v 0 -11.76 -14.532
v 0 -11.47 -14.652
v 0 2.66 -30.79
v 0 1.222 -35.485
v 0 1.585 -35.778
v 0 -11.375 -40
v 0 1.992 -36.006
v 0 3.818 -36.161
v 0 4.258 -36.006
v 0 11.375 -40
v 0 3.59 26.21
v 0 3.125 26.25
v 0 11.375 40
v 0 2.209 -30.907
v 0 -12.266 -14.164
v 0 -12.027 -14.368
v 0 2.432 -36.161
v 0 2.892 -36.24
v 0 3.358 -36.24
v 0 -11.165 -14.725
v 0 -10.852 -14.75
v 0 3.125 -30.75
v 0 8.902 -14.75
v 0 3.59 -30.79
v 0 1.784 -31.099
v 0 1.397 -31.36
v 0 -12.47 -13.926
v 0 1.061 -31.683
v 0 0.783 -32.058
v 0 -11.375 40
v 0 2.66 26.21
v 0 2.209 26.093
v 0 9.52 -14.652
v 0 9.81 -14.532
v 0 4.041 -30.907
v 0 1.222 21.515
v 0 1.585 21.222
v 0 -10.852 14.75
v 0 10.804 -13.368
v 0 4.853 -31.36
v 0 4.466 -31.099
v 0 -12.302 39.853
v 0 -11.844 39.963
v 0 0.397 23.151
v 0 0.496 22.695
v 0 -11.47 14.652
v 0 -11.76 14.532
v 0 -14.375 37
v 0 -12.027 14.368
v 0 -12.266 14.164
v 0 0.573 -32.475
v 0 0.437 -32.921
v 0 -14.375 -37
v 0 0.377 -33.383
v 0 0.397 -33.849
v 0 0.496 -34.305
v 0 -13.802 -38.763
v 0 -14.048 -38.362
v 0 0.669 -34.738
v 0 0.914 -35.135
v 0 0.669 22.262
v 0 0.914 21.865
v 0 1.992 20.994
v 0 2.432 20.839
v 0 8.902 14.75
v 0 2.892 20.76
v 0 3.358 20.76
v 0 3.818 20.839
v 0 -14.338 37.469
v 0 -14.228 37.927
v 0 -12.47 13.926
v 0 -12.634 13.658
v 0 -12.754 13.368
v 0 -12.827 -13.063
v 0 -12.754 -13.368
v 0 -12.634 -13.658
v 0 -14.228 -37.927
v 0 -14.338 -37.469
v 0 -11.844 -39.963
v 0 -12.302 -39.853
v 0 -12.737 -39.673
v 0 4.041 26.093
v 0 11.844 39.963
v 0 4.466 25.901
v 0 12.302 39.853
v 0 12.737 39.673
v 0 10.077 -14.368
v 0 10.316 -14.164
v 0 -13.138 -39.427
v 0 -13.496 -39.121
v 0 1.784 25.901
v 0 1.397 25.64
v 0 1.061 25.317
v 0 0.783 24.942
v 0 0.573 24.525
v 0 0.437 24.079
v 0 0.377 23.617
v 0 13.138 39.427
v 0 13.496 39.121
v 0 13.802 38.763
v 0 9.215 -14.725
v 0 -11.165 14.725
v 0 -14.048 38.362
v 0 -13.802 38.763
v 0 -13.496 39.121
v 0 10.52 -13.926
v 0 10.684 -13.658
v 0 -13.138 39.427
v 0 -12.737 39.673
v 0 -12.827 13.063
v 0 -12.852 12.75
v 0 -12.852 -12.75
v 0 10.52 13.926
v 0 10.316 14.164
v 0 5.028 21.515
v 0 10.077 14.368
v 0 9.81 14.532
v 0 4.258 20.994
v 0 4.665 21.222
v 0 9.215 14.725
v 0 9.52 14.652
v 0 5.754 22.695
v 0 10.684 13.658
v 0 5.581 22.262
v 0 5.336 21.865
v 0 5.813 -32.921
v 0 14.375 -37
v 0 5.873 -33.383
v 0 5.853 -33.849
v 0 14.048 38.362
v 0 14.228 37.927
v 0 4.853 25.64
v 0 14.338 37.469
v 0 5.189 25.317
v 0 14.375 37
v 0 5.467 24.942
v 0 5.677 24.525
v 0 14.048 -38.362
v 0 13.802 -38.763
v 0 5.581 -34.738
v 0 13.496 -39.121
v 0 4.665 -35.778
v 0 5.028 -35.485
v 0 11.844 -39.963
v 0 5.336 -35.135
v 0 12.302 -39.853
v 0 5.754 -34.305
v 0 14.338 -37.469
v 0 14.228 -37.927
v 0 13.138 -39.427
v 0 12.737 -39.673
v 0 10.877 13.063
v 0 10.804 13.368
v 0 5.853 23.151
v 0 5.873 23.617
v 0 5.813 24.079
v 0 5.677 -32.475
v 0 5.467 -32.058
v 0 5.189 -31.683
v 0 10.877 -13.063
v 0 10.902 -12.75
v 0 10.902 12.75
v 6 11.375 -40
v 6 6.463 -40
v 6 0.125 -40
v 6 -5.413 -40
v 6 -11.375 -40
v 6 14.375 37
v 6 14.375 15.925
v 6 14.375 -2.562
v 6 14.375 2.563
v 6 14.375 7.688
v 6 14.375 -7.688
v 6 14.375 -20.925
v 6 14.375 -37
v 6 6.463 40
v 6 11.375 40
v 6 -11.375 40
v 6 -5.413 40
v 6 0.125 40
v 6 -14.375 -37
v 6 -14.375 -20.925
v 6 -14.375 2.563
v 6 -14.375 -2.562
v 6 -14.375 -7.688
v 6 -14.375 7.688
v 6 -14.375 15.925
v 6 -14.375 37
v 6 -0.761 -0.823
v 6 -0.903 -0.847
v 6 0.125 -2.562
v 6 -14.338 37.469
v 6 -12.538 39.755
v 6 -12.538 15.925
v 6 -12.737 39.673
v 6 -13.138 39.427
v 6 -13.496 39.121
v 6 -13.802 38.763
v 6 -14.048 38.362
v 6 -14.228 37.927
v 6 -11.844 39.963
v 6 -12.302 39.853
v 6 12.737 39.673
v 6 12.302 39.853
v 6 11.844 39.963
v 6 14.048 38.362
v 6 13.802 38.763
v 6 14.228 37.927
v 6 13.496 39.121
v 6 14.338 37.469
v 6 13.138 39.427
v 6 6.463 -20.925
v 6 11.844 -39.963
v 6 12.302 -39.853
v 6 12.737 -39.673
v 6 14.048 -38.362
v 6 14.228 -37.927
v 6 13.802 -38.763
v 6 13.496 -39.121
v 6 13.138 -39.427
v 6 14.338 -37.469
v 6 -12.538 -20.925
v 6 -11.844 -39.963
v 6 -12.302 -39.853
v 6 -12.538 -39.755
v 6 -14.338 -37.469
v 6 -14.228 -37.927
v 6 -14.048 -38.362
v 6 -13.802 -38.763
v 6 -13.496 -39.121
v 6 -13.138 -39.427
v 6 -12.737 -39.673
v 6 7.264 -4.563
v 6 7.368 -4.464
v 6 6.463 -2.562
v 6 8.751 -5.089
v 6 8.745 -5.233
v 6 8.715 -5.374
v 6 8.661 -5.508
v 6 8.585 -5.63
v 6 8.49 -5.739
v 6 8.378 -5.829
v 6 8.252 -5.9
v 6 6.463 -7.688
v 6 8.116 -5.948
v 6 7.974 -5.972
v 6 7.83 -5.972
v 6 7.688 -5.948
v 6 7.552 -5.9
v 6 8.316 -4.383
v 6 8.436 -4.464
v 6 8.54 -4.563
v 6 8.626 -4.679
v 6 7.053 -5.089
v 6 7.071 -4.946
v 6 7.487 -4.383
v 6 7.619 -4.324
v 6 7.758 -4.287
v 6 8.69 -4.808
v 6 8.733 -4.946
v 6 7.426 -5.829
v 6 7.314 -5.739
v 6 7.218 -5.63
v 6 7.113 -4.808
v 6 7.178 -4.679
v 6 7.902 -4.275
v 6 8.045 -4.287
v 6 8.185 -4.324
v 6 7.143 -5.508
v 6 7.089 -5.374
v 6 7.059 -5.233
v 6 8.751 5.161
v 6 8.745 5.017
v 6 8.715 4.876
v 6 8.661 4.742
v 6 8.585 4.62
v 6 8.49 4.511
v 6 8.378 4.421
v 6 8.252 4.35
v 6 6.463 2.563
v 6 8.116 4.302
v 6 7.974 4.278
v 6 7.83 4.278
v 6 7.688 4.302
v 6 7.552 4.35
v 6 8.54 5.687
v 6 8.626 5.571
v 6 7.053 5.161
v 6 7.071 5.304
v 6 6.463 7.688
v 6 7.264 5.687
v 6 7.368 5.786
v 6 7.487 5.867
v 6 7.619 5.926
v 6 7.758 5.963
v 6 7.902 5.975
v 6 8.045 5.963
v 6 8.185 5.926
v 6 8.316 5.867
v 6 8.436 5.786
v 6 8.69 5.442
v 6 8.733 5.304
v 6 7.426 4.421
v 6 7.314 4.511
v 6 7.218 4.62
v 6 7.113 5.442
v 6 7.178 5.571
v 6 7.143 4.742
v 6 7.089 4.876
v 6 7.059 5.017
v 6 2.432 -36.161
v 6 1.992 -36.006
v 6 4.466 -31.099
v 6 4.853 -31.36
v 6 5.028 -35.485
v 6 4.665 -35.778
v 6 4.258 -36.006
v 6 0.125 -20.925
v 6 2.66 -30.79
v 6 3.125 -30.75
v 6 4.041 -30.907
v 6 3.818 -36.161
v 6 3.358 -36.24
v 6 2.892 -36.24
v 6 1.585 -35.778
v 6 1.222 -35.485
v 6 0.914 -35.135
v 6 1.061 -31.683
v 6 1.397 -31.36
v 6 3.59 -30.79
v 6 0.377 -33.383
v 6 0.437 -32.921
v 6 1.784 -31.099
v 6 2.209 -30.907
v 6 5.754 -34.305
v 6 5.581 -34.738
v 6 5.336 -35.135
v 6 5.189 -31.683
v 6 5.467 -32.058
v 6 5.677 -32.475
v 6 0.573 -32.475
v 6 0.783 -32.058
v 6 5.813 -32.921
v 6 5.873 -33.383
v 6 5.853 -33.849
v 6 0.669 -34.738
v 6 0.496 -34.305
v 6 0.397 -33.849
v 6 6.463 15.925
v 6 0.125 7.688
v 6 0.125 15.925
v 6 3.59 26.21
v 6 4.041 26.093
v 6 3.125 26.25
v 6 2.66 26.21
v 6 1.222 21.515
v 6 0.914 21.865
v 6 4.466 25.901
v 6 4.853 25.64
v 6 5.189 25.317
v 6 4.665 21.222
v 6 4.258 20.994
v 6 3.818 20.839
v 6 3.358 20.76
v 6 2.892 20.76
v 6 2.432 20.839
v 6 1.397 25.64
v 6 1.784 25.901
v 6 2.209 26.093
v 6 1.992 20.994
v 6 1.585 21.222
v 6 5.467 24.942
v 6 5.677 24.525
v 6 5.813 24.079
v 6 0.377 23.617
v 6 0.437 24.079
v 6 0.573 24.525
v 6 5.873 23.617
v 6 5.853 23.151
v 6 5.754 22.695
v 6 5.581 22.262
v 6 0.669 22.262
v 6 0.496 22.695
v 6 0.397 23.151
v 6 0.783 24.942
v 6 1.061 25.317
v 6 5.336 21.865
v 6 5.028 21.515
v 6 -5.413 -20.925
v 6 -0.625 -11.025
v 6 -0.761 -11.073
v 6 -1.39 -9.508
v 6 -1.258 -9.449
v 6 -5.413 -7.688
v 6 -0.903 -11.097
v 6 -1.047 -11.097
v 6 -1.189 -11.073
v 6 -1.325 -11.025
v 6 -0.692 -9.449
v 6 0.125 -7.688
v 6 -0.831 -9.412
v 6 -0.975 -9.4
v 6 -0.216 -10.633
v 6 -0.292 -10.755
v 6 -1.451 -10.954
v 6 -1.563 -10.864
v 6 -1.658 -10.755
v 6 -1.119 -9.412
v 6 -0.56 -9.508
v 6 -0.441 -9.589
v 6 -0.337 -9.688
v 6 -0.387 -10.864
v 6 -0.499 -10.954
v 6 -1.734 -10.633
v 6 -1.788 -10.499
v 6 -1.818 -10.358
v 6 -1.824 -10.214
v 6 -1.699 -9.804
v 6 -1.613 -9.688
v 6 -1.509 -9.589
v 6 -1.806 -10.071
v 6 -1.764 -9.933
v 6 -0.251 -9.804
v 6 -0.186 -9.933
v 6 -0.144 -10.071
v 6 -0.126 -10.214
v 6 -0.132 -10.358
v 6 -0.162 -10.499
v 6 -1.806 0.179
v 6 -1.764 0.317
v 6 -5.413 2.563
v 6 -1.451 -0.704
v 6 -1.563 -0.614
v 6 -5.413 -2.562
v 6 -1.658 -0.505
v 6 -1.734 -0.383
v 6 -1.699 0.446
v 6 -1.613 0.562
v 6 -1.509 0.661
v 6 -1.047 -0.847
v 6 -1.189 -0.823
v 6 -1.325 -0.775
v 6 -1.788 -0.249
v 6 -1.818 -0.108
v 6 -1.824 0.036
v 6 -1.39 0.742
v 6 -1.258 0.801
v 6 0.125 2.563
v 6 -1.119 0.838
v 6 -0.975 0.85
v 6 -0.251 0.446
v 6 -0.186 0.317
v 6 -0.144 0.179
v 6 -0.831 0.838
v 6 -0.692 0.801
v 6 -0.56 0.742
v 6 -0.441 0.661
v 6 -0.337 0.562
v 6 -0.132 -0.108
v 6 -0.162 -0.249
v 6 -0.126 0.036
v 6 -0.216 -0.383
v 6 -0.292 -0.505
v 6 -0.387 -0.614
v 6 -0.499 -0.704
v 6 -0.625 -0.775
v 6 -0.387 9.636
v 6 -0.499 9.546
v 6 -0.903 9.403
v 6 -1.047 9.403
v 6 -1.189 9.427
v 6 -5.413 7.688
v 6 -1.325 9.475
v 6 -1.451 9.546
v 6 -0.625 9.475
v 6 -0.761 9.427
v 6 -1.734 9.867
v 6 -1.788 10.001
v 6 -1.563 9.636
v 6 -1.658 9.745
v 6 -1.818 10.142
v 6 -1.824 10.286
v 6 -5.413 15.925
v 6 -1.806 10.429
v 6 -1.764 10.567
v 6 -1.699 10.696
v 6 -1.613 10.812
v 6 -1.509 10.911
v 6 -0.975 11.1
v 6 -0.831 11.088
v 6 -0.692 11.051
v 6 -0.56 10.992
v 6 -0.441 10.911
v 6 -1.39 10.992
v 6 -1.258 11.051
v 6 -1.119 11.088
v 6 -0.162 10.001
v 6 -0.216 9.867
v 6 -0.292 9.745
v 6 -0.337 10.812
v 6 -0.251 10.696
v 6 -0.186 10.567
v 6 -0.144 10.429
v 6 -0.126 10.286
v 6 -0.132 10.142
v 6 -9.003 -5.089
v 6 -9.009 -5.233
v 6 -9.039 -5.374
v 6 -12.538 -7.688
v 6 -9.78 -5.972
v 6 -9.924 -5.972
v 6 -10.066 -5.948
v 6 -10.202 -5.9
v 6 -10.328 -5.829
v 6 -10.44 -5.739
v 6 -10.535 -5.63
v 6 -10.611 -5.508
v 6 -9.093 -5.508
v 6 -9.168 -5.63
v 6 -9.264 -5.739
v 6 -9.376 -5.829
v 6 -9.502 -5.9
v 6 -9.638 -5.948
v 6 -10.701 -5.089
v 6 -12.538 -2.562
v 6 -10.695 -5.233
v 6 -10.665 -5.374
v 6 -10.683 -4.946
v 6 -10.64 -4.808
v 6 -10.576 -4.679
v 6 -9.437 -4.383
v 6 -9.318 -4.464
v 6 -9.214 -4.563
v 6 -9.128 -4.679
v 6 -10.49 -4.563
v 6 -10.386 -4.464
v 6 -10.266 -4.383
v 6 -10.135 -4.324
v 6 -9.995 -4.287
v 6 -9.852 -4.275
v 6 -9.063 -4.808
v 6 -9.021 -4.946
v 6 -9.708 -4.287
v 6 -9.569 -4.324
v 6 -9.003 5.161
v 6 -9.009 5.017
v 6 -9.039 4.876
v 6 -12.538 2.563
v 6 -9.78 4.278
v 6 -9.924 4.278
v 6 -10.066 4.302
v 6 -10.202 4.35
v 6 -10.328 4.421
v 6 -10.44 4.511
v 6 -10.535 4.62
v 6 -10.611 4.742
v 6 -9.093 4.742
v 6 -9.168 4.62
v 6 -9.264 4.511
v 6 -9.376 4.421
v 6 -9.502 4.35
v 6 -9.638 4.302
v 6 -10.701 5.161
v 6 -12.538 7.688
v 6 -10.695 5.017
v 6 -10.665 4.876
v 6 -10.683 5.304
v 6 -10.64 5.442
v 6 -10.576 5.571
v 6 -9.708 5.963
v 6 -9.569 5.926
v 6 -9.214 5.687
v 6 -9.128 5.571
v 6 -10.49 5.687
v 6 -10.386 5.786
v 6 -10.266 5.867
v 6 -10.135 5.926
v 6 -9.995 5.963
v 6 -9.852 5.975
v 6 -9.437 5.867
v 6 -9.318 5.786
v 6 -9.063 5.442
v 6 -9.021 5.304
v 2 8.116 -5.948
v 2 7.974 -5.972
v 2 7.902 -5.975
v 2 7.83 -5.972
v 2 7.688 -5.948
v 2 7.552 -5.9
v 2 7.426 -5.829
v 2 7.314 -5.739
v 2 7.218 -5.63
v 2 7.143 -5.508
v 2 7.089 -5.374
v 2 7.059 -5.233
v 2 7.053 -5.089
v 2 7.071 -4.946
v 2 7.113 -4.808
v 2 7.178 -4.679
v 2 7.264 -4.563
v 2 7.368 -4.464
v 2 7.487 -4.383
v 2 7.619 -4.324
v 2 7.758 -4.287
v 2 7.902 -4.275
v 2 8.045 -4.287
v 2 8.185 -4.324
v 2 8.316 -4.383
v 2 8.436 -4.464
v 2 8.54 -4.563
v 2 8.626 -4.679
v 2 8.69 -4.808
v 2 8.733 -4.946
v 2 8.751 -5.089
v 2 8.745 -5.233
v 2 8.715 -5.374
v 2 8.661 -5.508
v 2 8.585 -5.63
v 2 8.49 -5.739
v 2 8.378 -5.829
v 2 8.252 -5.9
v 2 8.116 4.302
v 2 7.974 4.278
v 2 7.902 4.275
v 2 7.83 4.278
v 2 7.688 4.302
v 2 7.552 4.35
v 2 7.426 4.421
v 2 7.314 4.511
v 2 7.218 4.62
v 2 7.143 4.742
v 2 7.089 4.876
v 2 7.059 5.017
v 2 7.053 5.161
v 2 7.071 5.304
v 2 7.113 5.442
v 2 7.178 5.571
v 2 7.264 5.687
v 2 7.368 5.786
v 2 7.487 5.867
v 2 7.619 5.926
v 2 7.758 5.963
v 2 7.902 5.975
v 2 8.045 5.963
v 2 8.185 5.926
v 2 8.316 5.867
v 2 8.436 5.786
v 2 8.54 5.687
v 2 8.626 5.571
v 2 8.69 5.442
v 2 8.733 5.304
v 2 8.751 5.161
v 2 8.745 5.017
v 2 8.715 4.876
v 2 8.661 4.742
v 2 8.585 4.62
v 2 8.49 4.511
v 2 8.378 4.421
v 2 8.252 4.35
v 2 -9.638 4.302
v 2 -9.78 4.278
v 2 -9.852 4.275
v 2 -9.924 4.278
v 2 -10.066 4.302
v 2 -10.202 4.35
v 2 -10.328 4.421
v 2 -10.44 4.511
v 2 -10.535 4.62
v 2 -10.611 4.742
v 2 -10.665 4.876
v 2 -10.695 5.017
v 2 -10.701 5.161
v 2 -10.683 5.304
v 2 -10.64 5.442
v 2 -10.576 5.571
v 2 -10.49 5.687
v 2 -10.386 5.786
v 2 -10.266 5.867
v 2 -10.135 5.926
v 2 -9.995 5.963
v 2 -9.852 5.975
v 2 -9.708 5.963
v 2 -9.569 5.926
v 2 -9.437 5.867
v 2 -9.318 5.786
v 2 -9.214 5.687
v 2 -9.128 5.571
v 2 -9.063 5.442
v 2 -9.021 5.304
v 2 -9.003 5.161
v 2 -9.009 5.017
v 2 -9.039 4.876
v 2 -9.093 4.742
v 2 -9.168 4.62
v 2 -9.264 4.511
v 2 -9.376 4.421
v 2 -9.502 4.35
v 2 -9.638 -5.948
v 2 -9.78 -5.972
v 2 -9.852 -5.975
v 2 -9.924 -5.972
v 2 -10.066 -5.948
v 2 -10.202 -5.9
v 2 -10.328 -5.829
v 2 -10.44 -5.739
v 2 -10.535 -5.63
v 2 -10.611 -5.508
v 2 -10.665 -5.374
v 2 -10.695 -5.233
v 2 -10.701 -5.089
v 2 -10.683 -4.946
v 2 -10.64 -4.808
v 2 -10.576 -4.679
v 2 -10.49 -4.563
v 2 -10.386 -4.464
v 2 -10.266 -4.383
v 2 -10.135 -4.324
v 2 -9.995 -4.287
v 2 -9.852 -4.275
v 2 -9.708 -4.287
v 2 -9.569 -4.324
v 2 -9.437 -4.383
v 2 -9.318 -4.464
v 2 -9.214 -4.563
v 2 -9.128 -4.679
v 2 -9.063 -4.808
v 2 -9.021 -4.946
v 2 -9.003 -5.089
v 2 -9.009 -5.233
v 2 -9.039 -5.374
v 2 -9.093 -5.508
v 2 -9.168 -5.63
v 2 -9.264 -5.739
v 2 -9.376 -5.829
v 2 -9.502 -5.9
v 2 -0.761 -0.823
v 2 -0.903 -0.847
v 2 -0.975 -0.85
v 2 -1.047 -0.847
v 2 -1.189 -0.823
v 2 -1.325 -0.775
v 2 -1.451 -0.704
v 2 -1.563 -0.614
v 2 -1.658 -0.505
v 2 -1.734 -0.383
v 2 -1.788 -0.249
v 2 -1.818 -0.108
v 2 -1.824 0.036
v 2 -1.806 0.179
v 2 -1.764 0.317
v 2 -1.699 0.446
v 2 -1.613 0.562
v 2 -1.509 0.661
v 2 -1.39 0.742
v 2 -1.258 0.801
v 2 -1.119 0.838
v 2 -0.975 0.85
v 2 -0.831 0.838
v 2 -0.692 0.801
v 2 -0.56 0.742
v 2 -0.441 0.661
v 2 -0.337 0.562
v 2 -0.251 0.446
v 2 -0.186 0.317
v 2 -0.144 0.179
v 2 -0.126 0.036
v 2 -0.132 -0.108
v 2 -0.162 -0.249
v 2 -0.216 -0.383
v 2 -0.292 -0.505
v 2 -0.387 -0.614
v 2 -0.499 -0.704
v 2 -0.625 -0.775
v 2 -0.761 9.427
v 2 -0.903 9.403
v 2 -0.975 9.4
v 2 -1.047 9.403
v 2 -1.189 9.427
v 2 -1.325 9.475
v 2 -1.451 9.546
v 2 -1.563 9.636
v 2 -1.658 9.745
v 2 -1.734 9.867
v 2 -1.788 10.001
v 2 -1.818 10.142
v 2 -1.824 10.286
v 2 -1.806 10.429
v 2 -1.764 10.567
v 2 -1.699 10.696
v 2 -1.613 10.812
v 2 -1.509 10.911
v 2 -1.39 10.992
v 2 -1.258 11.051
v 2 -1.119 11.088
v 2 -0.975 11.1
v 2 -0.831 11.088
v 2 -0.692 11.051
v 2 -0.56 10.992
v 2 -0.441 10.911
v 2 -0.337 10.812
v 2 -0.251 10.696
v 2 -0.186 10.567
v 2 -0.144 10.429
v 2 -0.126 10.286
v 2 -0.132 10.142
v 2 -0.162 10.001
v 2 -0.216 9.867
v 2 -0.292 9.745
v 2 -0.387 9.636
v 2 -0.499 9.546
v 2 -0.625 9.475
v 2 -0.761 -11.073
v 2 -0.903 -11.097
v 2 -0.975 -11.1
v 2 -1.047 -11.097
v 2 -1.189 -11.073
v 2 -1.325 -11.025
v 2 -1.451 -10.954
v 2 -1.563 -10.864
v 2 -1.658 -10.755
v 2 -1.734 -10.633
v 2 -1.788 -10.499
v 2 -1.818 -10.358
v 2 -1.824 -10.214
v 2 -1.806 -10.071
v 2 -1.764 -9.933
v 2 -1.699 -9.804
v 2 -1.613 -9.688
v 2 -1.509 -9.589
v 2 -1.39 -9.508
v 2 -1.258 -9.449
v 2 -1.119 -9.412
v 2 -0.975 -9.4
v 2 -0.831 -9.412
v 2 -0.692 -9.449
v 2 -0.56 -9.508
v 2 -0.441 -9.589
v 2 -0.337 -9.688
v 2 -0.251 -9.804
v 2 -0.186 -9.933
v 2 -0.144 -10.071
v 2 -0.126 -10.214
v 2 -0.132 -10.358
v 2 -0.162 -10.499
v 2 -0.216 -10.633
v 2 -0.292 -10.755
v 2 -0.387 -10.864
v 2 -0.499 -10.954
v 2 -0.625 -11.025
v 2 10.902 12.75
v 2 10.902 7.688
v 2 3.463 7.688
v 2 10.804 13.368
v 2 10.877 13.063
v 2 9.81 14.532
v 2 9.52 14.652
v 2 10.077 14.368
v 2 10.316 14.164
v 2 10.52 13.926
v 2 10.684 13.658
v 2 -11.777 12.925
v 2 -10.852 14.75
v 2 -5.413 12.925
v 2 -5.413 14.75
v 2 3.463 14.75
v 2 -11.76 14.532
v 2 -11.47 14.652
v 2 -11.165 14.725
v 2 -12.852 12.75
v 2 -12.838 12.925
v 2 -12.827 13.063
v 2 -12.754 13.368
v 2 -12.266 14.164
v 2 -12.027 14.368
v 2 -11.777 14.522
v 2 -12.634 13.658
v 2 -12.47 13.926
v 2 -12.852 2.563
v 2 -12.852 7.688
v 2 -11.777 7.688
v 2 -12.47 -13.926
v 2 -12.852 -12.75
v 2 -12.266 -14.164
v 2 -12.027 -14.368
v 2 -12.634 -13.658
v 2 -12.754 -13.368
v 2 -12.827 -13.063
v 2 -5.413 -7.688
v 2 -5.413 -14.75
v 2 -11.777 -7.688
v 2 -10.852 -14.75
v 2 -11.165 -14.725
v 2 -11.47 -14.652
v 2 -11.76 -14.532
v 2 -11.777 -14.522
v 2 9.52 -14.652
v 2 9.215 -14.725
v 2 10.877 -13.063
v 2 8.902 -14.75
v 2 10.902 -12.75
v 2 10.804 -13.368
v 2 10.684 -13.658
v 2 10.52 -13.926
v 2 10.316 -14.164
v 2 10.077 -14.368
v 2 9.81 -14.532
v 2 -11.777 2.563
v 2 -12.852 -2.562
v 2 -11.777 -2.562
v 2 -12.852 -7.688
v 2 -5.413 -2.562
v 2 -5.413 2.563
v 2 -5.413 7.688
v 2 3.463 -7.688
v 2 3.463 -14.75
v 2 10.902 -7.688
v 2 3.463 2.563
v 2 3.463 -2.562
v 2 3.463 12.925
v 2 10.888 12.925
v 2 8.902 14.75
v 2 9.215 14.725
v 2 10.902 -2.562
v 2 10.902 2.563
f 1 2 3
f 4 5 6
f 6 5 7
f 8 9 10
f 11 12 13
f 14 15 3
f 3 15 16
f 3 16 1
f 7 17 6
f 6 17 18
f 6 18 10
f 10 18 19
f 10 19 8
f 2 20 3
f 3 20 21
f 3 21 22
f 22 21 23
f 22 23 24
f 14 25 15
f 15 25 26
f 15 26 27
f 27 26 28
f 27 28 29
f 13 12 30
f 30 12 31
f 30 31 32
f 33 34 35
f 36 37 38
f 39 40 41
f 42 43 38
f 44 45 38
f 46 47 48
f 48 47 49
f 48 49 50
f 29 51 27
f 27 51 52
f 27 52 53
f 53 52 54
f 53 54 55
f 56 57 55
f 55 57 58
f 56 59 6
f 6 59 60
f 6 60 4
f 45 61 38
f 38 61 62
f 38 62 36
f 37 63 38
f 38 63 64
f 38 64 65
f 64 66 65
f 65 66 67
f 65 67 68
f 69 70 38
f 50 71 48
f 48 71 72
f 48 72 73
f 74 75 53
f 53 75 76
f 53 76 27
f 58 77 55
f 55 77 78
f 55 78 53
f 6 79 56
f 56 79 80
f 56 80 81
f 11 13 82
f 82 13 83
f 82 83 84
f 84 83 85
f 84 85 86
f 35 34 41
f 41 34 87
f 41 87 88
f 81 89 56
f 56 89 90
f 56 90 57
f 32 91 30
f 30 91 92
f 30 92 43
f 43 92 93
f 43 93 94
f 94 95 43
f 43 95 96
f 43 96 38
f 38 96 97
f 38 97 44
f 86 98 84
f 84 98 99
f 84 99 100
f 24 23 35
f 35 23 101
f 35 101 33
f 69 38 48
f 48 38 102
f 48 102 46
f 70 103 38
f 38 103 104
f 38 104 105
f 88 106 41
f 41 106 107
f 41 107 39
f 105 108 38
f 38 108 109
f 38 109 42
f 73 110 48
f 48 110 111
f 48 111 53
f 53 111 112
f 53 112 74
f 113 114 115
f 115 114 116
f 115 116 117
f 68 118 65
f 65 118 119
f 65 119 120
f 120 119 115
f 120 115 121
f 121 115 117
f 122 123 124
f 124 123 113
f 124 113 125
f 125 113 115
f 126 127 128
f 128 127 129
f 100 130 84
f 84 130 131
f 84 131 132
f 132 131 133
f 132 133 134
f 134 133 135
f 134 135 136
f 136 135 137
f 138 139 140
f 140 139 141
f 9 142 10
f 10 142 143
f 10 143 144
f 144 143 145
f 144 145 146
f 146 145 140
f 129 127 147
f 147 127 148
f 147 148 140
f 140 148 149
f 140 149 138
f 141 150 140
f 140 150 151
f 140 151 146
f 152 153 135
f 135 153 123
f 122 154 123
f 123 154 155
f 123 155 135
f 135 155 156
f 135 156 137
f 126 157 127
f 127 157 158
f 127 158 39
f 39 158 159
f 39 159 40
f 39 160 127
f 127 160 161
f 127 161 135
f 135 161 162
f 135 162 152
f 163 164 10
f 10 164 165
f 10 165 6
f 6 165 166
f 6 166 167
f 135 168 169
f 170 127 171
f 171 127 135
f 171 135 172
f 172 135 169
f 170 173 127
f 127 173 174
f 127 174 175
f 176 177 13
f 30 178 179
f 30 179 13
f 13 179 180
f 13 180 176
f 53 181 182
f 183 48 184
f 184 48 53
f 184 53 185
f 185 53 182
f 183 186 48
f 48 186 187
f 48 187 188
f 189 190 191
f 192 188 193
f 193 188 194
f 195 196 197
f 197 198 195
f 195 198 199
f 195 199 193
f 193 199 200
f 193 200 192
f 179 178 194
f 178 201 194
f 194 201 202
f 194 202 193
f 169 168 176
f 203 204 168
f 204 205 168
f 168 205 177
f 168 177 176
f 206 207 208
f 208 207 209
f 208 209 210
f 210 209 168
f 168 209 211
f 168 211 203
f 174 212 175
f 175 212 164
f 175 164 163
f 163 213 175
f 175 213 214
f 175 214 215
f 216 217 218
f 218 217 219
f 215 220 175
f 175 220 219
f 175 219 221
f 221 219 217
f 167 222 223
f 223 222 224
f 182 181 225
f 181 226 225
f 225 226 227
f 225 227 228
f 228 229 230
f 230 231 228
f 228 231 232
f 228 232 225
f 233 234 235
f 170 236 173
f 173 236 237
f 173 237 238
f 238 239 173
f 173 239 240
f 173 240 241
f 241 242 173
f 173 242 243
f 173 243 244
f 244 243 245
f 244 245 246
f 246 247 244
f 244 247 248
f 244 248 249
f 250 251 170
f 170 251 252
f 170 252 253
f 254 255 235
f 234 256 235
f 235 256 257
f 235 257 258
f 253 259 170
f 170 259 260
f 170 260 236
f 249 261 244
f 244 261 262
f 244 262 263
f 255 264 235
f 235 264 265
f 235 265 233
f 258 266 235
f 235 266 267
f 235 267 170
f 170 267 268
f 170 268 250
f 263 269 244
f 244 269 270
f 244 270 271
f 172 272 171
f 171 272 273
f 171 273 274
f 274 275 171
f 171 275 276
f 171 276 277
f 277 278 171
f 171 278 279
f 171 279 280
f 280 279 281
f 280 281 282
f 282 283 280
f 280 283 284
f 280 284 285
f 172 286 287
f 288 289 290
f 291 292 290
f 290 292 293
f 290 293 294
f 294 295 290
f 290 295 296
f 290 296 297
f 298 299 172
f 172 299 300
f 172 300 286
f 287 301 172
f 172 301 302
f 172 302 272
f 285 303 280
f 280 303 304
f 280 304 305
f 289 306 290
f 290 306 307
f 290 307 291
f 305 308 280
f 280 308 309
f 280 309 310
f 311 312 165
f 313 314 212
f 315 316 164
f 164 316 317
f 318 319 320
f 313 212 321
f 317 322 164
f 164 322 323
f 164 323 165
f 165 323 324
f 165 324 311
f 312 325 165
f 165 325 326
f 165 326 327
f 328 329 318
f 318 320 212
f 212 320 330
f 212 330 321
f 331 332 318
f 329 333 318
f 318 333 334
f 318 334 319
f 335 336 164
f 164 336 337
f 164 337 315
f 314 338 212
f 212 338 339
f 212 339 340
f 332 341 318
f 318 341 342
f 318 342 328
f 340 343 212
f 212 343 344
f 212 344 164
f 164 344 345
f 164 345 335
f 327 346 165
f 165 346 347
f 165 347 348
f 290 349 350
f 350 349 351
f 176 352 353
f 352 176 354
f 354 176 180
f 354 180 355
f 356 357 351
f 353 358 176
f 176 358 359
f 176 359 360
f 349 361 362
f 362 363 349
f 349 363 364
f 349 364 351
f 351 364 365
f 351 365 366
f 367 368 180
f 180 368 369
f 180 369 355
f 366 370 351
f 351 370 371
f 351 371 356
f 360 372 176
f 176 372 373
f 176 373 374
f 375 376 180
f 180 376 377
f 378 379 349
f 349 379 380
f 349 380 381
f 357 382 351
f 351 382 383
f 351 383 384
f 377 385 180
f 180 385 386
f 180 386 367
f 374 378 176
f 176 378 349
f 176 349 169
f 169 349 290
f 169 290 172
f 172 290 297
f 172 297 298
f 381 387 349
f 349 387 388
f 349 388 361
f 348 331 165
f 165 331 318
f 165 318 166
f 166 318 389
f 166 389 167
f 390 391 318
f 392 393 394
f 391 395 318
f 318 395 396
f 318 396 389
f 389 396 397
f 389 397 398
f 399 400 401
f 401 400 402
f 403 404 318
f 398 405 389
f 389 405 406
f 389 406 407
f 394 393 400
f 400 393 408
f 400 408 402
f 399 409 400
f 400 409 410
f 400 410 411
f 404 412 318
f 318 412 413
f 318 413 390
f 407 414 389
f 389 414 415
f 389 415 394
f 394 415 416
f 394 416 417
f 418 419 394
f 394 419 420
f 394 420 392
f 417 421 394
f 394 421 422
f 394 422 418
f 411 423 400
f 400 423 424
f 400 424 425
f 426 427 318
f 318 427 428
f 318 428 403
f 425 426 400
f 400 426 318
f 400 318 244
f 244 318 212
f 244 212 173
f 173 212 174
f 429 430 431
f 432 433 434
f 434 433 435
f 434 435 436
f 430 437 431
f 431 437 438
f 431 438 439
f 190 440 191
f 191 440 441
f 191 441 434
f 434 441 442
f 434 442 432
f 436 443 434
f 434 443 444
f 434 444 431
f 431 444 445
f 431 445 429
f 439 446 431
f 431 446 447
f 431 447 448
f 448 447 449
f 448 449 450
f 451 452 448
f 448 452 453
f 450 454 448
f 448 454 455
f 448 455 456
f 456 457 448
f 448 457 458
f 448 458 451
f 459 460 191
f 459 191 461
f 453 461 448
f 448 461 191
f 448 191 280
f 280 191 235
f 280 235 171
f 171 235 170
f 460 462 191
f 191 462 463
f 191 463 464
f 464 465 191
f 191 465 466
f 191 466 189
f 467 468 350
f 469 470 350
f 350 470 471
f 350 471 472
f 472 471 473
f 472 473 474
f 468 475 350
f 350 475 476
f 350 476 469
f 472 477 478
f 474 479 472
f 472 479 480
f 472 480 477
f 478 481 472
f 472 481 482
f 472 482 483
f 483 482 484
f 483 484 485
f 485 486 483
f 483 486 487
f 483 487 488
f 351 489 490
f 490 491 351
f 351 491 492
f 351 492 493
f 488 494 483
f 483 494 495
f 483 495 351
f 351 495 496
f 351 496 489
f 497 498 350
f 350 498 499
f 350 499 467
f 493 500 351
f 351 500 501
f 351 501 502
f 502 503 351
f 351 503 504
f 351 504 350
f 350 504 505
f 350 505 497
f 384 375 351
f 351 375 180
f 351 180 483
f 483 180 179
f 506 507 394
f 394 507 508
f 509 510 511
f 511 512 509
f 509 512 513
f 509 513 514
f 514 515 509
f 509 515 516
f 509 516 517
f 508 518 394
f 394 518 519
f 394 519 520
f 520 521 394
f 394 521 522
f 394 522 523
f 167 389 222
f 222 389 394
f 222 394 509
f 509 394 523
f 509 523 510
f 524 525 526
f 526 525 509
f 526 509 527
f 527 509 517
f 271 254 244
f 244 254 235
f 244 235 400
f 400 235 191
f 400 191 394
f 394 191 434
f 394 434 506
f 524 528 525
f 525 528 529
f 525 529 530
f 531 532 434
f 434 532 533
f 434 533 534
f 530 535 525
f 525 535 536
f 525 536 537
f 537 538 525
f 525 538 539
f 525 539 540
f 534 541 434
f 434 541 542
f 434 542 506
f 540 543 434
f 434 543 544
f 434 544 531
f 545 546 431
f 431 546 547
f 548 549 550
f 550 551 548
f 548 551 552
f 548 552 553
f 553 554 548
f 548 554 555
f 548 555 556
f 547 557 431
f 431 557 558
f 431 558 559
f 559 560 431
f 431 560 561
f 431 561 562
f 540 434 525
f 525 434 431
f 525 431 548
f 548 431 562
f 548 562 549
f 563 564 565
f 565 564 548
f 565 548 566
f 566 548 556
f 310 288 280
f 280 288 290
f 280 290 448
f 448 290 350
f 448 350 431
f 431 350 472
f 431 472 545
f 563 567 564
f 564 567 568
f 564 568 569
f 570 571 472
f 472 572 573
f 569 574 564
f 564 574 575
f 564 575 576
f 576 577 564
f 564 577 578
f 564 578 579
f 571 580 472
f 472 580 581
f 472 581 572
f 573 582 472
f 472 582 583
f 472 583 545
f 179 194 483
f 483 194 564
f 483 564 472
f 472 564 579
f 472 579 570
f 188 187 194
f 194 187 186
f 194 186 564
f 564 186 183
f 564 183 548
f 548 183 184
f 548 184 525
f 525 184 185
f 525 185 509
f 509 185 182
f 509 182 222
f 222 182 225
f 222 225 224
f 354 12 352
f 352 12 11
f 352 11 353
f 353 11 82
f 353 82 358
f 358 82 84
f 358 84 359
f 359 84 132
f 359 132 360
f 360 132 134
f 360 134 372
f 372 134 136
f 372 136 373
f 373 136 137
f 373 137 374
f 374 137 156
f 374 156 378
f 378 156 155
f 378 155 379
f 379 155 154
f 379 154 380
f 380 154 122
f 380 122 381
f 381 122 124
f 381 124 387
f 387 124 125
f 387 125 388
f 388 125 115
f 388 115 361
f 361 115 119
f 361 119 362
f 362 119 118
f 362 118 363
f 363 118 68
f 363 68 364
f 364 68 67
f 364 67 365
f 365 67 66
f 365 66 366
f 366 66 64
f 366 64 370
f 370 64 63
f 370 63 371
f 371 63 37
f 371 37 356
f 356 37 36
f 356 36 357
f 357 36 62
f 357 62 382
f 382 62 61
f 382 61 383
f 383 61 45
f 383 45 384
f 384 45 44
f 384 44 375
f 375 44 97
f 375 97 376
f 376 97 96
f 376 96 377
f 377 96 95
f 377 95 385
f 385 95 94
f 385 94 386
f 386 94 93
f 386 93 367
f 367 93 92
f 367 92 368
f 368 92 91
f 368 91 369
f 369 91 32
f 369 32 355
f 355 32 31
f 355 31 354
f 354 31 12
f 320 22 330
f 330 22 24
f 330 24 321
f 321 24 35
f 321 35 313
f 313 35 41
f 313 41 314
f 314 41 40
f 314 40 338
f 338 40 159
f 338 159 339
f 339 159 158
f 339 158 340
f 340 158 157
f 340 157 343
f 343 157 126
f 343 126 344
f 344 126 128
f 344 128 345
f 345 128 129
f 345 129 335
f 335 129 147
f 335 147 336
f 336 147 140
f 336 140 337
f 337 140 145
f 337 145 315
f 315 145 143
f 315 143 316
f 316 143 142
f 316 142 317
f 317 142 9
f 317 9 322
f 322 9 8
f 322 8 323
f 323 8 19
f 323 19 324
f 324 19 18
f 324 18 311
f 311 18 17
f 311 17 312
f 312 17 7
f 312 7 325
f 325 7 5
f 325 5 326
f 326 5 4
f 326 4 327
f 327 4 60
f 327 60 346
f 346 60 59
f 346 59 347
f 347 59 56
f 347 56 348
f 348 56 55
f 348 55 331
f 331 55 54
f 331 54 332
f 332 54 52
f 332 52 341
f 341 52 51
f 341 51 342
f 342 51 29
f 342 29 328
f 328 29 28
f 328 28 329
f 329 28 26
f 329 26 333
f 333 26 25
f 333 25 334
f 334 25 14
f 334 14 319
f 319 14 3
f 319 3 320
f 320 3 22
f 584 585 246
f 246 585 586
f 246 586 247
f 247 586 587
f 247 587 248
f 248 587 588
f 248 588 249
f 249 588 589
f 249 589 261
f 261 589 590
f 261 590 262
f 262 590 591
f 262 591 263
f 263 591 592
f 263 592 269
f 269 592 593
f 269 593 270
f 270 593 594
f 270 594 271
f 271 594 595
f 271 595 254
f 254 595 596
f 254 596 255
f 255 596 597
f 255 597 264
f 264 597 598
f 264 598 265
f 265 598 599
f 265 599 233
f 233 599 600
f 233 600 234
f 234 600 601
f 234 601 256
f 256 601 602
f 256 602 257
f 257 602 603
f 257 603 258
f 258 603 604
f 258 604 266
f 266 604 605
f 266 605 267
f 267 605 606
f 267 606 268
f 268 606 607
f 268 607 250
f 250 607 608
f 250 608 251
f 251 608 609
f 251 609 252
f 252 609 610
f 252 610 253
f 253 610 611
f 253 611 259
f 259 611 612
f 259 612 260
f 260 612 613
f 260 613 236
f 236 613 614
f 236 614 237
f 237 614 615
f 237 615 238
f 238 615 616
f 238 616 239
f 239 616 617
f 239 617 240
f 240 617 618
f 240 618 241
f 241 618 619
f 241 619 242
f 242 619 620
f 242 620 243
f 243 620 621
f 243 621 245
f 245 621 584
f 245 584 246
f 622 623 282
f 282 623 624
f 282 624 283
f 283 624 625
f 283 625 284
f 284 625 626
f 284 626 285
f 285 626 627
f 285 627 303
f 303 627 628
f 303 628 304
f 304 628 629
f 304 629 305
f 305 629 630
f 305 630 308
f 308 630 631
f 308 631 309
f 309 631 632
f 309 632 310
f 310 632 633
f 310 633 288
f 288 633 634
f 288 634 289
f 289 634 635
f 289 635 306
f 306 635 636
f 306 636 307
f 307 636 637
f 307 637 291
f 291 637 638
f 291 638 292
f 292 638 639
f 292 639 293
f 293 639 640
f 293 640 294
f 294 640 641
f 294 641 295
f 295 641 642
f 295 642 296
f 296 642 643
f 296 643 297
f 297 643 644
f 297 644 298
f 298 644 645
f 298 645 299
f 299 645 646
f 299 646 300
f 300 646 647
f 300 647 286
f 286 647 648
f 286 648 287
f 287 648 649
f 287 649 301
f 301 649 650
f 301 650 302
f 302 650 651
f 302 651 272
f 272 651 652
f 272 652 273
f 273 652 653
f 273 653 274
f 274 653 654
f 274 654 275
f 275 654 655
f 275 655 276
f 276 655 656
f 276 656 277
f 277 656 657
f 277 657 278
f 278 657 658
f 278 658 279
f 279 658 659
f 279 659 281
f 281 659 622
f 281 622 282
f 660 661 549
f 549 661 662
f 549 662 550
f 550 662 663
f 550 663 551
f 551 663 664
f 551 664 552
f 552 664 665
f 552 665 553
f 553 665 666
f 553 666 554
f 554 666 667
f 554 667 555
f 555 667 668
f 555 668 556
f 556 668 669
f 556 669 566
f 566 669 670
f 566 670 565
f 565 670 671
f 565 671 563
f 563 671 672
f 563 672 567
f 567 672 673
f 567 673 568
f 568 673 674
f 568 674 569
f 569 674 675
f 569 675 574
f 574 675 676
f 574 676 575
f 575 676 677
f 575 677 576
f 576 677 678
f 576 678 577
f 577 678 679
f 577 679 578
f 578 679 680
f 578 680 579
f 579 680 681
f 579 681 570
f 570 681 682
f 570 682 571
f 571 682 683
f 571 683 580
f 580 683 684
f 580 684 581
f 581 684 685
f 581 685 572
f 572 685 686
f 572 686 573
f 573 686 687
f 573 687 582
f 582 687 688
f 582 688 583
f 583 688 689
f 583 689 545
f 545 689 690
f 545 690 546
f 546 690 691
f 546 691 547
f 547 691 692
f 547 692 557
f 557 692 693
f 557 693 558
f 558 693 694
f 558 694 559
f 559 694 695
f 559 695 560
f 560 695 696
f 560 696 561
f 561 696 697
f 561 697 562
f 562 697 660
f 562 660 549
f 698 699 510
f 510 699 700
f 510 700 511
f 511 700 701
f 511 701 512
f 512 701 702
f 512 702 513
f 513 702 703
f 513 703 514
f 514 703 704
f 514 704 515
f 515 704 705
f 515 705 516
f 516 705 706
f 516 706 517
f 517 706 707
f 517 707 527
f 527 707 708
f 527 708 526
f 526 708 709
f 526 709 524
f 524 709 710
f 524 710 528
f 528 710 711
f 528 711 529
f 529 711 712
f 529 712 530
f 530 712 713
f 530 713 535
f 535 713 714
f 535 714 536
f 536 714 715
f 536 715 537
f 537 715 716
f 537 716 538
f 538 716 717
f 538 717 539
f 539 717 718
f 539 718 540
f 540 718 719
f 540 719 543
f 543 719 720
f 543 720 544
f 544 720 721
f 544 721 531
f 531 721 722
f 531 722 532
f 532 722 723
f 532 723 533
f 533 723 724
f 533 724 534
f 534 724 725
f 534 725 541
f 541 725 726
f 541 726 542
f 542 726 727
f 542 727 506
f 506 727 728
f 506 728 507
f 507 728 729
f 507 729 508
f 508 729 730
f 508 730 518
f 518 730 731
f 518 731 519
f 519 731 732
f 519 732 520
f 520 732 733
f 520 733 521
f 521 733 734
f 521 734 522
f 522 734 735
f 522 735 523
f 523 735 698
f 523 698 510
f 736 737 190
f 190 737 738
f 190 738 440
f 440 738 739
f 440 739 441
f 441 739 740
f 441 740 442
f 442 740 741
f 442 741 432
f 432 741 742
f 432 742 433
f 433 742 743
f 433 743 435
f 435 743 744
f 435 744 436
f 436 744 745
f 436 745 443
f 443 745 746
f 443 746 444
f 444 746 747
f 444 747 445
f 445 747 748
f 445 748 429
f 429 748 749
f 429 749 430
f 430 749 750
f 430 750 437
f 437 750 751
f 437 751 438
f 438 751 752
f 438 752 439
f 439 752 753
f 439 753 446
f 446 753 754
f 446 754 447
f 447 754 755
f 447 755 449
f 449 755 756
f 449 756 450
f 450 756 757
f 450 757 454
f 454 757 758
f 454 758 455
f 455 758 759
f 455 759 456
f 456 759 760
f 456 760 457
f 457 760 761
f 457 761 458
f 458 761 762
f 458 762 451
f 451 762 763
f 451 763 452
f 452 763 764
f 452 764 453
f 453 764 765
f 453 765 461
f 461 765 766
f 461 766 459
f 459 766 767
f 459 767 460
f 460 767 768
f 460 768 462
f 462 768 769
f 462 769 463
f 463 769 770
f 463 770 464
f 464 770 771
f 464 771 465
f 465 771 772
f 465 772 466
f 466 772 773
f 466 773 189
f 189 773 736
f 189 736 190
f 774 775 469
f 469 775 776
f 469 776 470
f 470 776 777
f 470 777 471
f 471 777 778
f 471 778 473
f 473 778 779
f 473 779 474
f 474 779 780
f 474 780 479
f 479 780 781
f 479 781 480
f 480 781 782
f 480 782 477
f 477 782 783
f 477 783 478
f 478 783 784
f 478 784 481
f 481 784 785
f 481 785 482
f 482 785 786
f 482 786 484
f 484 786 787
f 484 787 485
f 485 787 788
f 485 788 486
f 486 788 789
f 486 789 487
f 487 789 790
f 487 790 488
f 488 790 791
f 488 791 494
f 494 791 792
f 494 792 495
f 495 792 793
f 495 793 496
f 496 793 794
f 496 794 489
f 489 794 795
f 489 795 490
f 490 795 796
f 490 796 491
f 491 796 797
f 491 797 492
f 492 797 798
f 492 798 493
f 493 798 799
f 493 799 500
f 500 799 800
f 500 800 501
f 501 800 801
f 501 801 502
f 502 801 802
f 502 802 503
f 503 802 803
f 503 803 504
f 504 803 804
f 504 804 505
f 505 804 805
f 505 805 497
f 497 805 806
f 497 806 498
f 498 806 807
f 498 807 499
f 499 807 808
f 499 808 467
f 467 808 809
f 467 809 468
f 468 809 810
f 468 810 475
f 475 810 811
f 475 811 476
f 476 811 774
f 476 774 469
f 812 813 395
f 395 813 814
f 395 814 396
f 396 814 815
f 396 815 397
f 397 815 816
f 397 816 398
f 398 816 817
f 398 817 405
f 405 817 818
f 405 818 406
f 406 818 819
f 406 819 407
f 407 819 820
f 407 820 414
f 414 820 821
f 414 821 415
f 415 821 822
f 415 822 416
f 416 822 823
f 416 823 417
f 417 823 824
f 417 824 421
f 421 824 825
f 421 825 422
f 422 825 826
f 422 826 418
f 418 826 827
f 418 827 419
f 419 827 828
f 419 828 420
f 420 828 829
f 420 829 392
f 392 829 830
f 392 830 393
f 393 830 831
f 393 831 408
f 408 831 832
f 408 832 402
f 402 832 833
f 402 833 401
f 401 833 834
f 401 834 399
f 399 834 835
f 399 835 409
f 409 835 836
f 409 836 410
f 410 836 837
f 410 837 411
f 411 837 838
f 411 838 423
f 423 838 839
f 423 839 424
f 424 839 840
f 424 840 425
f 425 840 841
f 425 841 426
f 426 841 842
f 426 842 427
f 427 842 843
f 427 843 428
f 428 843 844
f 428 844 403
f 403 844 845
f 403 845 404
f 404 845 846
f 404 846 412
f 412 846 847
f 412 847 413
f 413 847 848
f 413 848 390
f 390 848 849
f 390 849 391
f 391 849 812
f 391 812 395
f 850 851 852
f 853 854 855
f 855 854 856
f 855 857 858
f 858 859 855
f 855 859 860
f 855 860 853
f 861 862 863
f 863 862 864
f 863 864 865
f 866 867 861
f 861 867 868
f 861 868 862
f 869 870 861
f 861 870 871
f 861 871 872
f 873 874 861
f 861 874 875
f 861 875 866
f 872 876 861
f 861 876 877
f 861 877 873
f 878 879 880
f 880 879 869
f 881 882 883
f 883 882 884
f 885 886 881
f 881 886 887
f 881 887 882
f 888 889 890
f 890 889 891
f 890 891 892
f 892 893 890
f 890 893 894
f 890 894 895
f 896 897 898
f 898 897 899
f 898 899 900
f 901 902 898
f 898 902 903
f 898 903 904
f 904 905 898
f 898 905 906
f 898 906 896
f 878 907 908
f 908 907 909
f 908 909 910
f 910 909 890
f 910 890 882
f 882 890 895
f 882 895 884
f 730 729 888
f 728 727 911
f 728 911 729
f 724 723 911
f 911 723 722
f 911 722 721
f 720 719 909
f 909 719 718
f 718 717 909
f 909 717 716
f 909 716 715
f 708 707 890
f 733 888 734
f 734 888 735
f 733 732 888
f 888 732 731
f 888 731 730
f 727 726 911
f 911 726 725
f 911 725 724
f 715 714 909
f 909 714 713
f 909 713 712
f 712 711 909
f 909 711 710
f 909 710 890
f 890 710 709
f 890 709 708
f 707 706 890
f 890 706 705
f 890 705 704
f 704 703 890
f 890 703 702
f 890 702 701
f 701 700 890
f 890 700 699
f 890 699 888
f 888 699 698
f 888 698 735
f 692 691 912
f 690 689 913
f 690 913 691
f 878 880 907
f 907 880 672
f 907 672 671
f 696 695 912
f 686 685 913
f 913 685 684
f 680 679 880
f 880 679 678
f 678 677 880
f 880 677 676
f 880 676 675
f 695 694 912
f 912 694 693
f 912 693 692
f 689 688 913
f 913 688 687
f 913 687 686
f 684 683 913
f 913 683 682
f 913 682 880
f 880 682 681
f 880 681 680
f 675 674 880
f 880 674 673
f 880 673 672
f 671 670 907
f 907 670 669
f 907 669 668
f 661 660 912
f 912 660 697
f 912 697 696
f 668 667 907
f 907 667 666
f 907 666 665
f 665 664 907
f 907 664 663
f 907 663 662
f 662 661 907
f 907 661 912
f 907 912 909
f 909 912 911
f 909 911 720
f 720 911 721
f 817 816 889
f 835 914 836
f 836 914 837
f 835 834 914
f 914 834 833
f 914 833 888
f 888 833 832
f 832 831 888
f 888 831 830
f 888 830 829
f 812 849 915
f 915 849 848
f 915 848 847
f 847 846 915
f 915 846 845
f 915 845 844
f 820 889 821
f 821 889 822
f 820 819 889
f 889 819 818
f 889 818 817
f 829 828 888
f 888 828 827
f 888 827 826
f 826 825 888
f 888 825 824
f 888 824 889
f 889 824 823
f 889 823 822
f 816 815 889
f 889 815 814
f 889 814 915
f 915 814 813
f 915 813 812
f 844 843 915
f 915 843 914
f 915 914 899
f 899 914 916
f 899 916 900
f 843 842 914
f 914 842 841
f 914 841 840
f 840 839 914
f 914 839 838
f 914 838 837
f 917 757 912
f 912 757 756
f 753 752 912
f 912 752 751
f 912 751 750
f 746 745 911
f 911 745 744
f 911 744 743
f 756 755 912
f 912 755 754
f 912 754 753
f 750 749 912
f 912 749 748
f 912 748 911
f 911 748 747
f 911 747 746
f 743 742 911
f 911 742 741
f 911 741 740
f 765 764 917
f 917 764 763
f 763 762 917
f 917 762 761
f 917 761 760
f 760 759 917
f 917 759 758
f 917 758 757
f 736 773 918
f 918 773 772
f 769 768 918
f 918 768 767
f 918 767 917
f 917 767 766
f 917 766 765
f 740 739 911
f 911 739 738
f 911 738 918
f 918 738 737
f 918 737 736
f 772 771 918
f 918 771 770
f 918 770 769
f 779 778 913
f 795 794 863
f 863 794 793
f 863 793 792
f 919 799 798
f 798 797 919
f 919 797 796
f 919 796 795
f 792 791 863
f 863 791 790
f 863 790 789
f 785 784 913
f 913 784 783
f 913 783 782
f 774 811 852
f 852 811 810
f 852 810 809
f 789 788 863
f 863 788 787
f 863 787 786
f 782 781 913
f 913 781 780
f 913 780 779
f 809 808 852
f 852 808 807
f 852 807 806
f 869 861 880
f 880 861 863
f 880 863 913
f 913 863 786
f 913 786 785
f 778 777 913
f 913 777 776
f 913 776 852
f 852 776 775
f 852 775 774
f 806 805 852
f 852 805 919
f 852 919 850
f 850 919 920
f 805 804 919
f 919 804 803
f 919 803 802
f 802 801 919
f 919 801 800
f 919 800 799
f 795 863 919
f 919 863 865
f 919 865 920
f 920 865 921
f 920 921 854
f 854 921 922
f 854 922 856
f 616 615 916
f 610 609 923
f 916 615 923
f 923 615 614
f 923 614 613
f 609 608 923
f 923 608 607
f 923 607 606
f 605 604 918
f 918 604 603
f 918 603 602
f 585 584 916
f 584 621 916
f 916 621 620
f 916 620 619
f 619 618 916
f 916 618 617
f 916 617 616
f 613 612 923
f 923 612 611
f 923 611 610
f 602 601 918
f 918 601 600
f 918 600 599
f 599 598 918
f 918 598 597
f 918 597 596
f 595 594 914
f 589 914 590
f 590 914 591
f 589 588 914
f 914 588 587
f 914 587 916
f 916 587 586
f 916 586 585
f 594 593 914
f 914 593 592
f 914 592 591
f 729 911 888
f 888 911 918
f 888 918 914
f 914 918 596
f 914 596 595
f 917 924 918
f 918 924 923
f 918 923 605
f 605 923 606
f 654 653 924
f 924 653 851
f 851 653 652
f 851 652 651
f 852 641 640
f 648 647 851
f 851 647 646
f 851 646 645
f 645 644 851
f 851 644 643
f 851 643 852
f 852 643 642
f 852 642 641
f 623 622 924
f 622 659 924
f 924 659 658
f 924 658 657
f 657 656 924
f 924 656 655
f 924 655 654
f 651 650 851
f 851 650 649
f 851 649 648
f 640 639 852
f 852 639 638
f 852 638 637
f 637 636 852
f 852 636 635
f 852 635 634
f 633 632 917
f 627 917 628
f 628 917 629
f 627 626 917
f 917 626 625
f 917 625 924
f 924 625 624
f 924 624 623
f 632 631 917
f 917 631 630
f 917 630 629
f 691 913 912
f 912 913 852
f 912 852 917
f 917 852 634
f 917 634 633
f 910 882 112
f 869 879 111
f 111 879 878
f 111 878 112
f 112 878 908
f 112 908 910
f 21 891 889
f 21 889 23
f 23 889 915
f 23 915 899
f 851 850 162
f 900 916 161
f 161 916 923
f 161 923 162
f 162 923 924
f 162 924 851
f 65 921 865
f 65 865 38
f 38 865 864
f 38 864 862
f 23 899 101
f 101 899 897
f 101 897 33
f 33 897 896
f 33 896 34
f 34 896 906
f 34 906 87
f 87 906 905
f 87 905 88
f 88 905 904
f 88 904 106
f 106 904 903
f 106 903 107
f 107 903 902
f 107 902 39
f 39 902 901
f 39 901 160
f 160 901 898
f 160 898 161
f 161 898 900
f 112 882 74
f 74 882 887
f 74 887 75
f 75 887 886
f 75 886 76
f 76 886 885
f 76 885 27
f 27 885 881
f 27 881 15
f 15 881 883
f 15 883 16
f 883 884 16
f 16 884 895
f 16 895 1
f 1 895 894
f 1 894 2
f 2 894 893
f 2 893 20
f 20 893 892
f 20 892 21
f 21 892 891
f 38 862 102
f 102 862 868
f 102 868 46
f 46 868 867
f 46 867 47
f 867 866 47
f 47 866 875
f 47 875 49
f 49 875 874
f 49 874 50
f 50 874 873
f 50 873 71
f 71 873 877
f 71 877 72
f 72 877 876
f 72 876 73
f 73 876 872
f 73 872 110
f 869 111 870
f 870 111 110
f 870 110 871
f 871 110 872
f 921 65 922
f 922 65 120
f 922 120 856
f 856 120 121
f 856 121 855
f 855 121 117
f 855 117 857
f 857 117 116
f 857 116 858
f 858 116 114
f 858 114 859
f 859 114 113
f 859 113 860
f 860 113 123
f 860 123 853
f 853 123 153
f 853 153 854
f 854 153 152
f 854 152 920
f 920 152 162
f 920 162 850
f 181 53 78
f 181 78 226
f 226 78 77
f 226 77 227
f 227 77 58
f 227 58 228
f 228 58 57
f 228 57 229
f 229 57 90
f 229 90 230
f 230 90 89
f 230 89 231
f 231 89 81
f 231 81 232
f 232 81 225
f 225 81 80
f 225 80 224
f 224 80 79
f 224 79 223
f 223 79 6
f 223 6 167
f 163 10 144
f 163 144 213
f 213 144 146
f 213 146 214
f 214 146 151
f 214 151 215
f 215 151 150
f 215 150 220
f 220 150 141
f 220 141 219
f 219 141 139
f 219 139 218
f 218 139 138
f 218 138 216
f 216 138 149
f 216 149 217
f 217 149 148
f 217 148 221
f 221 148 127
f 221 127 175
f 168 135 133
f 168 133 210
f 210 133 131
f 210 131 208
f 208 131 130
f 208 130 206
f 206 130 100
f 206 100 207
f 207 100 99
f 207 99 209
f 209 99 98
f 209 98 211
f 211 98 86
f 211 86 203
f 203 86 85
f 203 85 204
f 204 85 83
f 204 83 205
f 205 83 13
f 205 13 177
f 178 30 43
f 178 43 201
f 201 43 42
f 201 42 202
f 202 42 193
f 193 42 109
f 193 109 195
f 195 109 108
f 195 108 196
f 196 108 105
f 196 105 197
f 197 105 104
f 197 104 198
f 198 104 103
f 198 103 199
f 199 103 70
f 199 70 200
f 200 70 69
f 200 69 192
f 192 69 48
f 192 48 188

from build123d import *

# Parameters (mm, degrees)
SKETCH1_W              = 80
SKETCH1_H              = 28.75
BOSS_EXTRUDE1_DEPTH    = 6
M5_CLEARANCE_HOLE1_D   = 5.5
M1_6_CLEARANCE_HOLE1_D = 1.7
CUT_EXTRUDE1_START     = -6
SKETCH9_W              = 29.5
SKETCH9_H              = 23.753520778
CUT_EXTRUDE1_DEPTH     = 2
FILLET1_R              = 2
FILLET2_R              = 3


with BuildPart() as part:
    # Sketch1 → Boss-Extrude1 (new body)
    with BuildSketch(Plane(origin=(0, 0, 0), x_dir=(0, 0, -1), z_dir=(1, 0, 0))):
        Rectangle(SKETCH1_W, SKETCH1_H)
    extrude(amount=BOSS_EXTRUDE1_DEPTH)

    # M5 Clearance Hole1 (through all)
    with Locations(Plane.ZY):
        with Locations((-33.5, 3.125), (23.5, 3.125)):
            Hole(M5_CLEARANCE_HOLE1_D / 2)

    # M1.6 Clearance Hole1 (through all)
    with Locations(Plane.ZY):
        with Locations((-10.25, -0.975), (10.25, -0.975), (0, -0.975), (-5.125, -9.851760389), (5.125, -9.851760389), (5.125, 7.901760389), (-5.125, 7.901760389)):
            Hole(M1_6_CLEARANCE_HOLE1_D / 2)

    # Sketch9 → Cut-Extrude1 (cut)
    with BuildSketch(Plane(origin=(6, 0, 0), x_dir=(0, 0, -1), z_dir=(1, 0, 0)).offset(CUT_EXTRUDE1_START)):
        with Locations((0, -0.975)):
            Rectangle(SKETCH9_W, SKETCH9_H)
    extrude(amount=CUT_EXTRUDE1_DEPTH, mode=Mode.SUBTRACT)

    # Fillet1
    fillet1_edges = [part.edges().sort_by_distance(p)[0] for p in [
        (1, -12.851760389, 14.75),
        (1, -12.851760389, -14.75),
        (1, 10.901760389, -14.75),
        (1, 10.901760389, 14.75),
    ]]
    fillet(fillet1_edges, radius=FILLET1_R)

    # Fillet2
    fillet2_edges = [part.edges().sort_by_distance(p)[0] for p in [
        (3, -14.375, -40),
        (3, -14.375, 40),
        (3, 14.375, 40),
        (3, 14.375, -40),
    ]]
    fillet(fillet2_edges, radius=FILLET2_R)


solid = part.part
